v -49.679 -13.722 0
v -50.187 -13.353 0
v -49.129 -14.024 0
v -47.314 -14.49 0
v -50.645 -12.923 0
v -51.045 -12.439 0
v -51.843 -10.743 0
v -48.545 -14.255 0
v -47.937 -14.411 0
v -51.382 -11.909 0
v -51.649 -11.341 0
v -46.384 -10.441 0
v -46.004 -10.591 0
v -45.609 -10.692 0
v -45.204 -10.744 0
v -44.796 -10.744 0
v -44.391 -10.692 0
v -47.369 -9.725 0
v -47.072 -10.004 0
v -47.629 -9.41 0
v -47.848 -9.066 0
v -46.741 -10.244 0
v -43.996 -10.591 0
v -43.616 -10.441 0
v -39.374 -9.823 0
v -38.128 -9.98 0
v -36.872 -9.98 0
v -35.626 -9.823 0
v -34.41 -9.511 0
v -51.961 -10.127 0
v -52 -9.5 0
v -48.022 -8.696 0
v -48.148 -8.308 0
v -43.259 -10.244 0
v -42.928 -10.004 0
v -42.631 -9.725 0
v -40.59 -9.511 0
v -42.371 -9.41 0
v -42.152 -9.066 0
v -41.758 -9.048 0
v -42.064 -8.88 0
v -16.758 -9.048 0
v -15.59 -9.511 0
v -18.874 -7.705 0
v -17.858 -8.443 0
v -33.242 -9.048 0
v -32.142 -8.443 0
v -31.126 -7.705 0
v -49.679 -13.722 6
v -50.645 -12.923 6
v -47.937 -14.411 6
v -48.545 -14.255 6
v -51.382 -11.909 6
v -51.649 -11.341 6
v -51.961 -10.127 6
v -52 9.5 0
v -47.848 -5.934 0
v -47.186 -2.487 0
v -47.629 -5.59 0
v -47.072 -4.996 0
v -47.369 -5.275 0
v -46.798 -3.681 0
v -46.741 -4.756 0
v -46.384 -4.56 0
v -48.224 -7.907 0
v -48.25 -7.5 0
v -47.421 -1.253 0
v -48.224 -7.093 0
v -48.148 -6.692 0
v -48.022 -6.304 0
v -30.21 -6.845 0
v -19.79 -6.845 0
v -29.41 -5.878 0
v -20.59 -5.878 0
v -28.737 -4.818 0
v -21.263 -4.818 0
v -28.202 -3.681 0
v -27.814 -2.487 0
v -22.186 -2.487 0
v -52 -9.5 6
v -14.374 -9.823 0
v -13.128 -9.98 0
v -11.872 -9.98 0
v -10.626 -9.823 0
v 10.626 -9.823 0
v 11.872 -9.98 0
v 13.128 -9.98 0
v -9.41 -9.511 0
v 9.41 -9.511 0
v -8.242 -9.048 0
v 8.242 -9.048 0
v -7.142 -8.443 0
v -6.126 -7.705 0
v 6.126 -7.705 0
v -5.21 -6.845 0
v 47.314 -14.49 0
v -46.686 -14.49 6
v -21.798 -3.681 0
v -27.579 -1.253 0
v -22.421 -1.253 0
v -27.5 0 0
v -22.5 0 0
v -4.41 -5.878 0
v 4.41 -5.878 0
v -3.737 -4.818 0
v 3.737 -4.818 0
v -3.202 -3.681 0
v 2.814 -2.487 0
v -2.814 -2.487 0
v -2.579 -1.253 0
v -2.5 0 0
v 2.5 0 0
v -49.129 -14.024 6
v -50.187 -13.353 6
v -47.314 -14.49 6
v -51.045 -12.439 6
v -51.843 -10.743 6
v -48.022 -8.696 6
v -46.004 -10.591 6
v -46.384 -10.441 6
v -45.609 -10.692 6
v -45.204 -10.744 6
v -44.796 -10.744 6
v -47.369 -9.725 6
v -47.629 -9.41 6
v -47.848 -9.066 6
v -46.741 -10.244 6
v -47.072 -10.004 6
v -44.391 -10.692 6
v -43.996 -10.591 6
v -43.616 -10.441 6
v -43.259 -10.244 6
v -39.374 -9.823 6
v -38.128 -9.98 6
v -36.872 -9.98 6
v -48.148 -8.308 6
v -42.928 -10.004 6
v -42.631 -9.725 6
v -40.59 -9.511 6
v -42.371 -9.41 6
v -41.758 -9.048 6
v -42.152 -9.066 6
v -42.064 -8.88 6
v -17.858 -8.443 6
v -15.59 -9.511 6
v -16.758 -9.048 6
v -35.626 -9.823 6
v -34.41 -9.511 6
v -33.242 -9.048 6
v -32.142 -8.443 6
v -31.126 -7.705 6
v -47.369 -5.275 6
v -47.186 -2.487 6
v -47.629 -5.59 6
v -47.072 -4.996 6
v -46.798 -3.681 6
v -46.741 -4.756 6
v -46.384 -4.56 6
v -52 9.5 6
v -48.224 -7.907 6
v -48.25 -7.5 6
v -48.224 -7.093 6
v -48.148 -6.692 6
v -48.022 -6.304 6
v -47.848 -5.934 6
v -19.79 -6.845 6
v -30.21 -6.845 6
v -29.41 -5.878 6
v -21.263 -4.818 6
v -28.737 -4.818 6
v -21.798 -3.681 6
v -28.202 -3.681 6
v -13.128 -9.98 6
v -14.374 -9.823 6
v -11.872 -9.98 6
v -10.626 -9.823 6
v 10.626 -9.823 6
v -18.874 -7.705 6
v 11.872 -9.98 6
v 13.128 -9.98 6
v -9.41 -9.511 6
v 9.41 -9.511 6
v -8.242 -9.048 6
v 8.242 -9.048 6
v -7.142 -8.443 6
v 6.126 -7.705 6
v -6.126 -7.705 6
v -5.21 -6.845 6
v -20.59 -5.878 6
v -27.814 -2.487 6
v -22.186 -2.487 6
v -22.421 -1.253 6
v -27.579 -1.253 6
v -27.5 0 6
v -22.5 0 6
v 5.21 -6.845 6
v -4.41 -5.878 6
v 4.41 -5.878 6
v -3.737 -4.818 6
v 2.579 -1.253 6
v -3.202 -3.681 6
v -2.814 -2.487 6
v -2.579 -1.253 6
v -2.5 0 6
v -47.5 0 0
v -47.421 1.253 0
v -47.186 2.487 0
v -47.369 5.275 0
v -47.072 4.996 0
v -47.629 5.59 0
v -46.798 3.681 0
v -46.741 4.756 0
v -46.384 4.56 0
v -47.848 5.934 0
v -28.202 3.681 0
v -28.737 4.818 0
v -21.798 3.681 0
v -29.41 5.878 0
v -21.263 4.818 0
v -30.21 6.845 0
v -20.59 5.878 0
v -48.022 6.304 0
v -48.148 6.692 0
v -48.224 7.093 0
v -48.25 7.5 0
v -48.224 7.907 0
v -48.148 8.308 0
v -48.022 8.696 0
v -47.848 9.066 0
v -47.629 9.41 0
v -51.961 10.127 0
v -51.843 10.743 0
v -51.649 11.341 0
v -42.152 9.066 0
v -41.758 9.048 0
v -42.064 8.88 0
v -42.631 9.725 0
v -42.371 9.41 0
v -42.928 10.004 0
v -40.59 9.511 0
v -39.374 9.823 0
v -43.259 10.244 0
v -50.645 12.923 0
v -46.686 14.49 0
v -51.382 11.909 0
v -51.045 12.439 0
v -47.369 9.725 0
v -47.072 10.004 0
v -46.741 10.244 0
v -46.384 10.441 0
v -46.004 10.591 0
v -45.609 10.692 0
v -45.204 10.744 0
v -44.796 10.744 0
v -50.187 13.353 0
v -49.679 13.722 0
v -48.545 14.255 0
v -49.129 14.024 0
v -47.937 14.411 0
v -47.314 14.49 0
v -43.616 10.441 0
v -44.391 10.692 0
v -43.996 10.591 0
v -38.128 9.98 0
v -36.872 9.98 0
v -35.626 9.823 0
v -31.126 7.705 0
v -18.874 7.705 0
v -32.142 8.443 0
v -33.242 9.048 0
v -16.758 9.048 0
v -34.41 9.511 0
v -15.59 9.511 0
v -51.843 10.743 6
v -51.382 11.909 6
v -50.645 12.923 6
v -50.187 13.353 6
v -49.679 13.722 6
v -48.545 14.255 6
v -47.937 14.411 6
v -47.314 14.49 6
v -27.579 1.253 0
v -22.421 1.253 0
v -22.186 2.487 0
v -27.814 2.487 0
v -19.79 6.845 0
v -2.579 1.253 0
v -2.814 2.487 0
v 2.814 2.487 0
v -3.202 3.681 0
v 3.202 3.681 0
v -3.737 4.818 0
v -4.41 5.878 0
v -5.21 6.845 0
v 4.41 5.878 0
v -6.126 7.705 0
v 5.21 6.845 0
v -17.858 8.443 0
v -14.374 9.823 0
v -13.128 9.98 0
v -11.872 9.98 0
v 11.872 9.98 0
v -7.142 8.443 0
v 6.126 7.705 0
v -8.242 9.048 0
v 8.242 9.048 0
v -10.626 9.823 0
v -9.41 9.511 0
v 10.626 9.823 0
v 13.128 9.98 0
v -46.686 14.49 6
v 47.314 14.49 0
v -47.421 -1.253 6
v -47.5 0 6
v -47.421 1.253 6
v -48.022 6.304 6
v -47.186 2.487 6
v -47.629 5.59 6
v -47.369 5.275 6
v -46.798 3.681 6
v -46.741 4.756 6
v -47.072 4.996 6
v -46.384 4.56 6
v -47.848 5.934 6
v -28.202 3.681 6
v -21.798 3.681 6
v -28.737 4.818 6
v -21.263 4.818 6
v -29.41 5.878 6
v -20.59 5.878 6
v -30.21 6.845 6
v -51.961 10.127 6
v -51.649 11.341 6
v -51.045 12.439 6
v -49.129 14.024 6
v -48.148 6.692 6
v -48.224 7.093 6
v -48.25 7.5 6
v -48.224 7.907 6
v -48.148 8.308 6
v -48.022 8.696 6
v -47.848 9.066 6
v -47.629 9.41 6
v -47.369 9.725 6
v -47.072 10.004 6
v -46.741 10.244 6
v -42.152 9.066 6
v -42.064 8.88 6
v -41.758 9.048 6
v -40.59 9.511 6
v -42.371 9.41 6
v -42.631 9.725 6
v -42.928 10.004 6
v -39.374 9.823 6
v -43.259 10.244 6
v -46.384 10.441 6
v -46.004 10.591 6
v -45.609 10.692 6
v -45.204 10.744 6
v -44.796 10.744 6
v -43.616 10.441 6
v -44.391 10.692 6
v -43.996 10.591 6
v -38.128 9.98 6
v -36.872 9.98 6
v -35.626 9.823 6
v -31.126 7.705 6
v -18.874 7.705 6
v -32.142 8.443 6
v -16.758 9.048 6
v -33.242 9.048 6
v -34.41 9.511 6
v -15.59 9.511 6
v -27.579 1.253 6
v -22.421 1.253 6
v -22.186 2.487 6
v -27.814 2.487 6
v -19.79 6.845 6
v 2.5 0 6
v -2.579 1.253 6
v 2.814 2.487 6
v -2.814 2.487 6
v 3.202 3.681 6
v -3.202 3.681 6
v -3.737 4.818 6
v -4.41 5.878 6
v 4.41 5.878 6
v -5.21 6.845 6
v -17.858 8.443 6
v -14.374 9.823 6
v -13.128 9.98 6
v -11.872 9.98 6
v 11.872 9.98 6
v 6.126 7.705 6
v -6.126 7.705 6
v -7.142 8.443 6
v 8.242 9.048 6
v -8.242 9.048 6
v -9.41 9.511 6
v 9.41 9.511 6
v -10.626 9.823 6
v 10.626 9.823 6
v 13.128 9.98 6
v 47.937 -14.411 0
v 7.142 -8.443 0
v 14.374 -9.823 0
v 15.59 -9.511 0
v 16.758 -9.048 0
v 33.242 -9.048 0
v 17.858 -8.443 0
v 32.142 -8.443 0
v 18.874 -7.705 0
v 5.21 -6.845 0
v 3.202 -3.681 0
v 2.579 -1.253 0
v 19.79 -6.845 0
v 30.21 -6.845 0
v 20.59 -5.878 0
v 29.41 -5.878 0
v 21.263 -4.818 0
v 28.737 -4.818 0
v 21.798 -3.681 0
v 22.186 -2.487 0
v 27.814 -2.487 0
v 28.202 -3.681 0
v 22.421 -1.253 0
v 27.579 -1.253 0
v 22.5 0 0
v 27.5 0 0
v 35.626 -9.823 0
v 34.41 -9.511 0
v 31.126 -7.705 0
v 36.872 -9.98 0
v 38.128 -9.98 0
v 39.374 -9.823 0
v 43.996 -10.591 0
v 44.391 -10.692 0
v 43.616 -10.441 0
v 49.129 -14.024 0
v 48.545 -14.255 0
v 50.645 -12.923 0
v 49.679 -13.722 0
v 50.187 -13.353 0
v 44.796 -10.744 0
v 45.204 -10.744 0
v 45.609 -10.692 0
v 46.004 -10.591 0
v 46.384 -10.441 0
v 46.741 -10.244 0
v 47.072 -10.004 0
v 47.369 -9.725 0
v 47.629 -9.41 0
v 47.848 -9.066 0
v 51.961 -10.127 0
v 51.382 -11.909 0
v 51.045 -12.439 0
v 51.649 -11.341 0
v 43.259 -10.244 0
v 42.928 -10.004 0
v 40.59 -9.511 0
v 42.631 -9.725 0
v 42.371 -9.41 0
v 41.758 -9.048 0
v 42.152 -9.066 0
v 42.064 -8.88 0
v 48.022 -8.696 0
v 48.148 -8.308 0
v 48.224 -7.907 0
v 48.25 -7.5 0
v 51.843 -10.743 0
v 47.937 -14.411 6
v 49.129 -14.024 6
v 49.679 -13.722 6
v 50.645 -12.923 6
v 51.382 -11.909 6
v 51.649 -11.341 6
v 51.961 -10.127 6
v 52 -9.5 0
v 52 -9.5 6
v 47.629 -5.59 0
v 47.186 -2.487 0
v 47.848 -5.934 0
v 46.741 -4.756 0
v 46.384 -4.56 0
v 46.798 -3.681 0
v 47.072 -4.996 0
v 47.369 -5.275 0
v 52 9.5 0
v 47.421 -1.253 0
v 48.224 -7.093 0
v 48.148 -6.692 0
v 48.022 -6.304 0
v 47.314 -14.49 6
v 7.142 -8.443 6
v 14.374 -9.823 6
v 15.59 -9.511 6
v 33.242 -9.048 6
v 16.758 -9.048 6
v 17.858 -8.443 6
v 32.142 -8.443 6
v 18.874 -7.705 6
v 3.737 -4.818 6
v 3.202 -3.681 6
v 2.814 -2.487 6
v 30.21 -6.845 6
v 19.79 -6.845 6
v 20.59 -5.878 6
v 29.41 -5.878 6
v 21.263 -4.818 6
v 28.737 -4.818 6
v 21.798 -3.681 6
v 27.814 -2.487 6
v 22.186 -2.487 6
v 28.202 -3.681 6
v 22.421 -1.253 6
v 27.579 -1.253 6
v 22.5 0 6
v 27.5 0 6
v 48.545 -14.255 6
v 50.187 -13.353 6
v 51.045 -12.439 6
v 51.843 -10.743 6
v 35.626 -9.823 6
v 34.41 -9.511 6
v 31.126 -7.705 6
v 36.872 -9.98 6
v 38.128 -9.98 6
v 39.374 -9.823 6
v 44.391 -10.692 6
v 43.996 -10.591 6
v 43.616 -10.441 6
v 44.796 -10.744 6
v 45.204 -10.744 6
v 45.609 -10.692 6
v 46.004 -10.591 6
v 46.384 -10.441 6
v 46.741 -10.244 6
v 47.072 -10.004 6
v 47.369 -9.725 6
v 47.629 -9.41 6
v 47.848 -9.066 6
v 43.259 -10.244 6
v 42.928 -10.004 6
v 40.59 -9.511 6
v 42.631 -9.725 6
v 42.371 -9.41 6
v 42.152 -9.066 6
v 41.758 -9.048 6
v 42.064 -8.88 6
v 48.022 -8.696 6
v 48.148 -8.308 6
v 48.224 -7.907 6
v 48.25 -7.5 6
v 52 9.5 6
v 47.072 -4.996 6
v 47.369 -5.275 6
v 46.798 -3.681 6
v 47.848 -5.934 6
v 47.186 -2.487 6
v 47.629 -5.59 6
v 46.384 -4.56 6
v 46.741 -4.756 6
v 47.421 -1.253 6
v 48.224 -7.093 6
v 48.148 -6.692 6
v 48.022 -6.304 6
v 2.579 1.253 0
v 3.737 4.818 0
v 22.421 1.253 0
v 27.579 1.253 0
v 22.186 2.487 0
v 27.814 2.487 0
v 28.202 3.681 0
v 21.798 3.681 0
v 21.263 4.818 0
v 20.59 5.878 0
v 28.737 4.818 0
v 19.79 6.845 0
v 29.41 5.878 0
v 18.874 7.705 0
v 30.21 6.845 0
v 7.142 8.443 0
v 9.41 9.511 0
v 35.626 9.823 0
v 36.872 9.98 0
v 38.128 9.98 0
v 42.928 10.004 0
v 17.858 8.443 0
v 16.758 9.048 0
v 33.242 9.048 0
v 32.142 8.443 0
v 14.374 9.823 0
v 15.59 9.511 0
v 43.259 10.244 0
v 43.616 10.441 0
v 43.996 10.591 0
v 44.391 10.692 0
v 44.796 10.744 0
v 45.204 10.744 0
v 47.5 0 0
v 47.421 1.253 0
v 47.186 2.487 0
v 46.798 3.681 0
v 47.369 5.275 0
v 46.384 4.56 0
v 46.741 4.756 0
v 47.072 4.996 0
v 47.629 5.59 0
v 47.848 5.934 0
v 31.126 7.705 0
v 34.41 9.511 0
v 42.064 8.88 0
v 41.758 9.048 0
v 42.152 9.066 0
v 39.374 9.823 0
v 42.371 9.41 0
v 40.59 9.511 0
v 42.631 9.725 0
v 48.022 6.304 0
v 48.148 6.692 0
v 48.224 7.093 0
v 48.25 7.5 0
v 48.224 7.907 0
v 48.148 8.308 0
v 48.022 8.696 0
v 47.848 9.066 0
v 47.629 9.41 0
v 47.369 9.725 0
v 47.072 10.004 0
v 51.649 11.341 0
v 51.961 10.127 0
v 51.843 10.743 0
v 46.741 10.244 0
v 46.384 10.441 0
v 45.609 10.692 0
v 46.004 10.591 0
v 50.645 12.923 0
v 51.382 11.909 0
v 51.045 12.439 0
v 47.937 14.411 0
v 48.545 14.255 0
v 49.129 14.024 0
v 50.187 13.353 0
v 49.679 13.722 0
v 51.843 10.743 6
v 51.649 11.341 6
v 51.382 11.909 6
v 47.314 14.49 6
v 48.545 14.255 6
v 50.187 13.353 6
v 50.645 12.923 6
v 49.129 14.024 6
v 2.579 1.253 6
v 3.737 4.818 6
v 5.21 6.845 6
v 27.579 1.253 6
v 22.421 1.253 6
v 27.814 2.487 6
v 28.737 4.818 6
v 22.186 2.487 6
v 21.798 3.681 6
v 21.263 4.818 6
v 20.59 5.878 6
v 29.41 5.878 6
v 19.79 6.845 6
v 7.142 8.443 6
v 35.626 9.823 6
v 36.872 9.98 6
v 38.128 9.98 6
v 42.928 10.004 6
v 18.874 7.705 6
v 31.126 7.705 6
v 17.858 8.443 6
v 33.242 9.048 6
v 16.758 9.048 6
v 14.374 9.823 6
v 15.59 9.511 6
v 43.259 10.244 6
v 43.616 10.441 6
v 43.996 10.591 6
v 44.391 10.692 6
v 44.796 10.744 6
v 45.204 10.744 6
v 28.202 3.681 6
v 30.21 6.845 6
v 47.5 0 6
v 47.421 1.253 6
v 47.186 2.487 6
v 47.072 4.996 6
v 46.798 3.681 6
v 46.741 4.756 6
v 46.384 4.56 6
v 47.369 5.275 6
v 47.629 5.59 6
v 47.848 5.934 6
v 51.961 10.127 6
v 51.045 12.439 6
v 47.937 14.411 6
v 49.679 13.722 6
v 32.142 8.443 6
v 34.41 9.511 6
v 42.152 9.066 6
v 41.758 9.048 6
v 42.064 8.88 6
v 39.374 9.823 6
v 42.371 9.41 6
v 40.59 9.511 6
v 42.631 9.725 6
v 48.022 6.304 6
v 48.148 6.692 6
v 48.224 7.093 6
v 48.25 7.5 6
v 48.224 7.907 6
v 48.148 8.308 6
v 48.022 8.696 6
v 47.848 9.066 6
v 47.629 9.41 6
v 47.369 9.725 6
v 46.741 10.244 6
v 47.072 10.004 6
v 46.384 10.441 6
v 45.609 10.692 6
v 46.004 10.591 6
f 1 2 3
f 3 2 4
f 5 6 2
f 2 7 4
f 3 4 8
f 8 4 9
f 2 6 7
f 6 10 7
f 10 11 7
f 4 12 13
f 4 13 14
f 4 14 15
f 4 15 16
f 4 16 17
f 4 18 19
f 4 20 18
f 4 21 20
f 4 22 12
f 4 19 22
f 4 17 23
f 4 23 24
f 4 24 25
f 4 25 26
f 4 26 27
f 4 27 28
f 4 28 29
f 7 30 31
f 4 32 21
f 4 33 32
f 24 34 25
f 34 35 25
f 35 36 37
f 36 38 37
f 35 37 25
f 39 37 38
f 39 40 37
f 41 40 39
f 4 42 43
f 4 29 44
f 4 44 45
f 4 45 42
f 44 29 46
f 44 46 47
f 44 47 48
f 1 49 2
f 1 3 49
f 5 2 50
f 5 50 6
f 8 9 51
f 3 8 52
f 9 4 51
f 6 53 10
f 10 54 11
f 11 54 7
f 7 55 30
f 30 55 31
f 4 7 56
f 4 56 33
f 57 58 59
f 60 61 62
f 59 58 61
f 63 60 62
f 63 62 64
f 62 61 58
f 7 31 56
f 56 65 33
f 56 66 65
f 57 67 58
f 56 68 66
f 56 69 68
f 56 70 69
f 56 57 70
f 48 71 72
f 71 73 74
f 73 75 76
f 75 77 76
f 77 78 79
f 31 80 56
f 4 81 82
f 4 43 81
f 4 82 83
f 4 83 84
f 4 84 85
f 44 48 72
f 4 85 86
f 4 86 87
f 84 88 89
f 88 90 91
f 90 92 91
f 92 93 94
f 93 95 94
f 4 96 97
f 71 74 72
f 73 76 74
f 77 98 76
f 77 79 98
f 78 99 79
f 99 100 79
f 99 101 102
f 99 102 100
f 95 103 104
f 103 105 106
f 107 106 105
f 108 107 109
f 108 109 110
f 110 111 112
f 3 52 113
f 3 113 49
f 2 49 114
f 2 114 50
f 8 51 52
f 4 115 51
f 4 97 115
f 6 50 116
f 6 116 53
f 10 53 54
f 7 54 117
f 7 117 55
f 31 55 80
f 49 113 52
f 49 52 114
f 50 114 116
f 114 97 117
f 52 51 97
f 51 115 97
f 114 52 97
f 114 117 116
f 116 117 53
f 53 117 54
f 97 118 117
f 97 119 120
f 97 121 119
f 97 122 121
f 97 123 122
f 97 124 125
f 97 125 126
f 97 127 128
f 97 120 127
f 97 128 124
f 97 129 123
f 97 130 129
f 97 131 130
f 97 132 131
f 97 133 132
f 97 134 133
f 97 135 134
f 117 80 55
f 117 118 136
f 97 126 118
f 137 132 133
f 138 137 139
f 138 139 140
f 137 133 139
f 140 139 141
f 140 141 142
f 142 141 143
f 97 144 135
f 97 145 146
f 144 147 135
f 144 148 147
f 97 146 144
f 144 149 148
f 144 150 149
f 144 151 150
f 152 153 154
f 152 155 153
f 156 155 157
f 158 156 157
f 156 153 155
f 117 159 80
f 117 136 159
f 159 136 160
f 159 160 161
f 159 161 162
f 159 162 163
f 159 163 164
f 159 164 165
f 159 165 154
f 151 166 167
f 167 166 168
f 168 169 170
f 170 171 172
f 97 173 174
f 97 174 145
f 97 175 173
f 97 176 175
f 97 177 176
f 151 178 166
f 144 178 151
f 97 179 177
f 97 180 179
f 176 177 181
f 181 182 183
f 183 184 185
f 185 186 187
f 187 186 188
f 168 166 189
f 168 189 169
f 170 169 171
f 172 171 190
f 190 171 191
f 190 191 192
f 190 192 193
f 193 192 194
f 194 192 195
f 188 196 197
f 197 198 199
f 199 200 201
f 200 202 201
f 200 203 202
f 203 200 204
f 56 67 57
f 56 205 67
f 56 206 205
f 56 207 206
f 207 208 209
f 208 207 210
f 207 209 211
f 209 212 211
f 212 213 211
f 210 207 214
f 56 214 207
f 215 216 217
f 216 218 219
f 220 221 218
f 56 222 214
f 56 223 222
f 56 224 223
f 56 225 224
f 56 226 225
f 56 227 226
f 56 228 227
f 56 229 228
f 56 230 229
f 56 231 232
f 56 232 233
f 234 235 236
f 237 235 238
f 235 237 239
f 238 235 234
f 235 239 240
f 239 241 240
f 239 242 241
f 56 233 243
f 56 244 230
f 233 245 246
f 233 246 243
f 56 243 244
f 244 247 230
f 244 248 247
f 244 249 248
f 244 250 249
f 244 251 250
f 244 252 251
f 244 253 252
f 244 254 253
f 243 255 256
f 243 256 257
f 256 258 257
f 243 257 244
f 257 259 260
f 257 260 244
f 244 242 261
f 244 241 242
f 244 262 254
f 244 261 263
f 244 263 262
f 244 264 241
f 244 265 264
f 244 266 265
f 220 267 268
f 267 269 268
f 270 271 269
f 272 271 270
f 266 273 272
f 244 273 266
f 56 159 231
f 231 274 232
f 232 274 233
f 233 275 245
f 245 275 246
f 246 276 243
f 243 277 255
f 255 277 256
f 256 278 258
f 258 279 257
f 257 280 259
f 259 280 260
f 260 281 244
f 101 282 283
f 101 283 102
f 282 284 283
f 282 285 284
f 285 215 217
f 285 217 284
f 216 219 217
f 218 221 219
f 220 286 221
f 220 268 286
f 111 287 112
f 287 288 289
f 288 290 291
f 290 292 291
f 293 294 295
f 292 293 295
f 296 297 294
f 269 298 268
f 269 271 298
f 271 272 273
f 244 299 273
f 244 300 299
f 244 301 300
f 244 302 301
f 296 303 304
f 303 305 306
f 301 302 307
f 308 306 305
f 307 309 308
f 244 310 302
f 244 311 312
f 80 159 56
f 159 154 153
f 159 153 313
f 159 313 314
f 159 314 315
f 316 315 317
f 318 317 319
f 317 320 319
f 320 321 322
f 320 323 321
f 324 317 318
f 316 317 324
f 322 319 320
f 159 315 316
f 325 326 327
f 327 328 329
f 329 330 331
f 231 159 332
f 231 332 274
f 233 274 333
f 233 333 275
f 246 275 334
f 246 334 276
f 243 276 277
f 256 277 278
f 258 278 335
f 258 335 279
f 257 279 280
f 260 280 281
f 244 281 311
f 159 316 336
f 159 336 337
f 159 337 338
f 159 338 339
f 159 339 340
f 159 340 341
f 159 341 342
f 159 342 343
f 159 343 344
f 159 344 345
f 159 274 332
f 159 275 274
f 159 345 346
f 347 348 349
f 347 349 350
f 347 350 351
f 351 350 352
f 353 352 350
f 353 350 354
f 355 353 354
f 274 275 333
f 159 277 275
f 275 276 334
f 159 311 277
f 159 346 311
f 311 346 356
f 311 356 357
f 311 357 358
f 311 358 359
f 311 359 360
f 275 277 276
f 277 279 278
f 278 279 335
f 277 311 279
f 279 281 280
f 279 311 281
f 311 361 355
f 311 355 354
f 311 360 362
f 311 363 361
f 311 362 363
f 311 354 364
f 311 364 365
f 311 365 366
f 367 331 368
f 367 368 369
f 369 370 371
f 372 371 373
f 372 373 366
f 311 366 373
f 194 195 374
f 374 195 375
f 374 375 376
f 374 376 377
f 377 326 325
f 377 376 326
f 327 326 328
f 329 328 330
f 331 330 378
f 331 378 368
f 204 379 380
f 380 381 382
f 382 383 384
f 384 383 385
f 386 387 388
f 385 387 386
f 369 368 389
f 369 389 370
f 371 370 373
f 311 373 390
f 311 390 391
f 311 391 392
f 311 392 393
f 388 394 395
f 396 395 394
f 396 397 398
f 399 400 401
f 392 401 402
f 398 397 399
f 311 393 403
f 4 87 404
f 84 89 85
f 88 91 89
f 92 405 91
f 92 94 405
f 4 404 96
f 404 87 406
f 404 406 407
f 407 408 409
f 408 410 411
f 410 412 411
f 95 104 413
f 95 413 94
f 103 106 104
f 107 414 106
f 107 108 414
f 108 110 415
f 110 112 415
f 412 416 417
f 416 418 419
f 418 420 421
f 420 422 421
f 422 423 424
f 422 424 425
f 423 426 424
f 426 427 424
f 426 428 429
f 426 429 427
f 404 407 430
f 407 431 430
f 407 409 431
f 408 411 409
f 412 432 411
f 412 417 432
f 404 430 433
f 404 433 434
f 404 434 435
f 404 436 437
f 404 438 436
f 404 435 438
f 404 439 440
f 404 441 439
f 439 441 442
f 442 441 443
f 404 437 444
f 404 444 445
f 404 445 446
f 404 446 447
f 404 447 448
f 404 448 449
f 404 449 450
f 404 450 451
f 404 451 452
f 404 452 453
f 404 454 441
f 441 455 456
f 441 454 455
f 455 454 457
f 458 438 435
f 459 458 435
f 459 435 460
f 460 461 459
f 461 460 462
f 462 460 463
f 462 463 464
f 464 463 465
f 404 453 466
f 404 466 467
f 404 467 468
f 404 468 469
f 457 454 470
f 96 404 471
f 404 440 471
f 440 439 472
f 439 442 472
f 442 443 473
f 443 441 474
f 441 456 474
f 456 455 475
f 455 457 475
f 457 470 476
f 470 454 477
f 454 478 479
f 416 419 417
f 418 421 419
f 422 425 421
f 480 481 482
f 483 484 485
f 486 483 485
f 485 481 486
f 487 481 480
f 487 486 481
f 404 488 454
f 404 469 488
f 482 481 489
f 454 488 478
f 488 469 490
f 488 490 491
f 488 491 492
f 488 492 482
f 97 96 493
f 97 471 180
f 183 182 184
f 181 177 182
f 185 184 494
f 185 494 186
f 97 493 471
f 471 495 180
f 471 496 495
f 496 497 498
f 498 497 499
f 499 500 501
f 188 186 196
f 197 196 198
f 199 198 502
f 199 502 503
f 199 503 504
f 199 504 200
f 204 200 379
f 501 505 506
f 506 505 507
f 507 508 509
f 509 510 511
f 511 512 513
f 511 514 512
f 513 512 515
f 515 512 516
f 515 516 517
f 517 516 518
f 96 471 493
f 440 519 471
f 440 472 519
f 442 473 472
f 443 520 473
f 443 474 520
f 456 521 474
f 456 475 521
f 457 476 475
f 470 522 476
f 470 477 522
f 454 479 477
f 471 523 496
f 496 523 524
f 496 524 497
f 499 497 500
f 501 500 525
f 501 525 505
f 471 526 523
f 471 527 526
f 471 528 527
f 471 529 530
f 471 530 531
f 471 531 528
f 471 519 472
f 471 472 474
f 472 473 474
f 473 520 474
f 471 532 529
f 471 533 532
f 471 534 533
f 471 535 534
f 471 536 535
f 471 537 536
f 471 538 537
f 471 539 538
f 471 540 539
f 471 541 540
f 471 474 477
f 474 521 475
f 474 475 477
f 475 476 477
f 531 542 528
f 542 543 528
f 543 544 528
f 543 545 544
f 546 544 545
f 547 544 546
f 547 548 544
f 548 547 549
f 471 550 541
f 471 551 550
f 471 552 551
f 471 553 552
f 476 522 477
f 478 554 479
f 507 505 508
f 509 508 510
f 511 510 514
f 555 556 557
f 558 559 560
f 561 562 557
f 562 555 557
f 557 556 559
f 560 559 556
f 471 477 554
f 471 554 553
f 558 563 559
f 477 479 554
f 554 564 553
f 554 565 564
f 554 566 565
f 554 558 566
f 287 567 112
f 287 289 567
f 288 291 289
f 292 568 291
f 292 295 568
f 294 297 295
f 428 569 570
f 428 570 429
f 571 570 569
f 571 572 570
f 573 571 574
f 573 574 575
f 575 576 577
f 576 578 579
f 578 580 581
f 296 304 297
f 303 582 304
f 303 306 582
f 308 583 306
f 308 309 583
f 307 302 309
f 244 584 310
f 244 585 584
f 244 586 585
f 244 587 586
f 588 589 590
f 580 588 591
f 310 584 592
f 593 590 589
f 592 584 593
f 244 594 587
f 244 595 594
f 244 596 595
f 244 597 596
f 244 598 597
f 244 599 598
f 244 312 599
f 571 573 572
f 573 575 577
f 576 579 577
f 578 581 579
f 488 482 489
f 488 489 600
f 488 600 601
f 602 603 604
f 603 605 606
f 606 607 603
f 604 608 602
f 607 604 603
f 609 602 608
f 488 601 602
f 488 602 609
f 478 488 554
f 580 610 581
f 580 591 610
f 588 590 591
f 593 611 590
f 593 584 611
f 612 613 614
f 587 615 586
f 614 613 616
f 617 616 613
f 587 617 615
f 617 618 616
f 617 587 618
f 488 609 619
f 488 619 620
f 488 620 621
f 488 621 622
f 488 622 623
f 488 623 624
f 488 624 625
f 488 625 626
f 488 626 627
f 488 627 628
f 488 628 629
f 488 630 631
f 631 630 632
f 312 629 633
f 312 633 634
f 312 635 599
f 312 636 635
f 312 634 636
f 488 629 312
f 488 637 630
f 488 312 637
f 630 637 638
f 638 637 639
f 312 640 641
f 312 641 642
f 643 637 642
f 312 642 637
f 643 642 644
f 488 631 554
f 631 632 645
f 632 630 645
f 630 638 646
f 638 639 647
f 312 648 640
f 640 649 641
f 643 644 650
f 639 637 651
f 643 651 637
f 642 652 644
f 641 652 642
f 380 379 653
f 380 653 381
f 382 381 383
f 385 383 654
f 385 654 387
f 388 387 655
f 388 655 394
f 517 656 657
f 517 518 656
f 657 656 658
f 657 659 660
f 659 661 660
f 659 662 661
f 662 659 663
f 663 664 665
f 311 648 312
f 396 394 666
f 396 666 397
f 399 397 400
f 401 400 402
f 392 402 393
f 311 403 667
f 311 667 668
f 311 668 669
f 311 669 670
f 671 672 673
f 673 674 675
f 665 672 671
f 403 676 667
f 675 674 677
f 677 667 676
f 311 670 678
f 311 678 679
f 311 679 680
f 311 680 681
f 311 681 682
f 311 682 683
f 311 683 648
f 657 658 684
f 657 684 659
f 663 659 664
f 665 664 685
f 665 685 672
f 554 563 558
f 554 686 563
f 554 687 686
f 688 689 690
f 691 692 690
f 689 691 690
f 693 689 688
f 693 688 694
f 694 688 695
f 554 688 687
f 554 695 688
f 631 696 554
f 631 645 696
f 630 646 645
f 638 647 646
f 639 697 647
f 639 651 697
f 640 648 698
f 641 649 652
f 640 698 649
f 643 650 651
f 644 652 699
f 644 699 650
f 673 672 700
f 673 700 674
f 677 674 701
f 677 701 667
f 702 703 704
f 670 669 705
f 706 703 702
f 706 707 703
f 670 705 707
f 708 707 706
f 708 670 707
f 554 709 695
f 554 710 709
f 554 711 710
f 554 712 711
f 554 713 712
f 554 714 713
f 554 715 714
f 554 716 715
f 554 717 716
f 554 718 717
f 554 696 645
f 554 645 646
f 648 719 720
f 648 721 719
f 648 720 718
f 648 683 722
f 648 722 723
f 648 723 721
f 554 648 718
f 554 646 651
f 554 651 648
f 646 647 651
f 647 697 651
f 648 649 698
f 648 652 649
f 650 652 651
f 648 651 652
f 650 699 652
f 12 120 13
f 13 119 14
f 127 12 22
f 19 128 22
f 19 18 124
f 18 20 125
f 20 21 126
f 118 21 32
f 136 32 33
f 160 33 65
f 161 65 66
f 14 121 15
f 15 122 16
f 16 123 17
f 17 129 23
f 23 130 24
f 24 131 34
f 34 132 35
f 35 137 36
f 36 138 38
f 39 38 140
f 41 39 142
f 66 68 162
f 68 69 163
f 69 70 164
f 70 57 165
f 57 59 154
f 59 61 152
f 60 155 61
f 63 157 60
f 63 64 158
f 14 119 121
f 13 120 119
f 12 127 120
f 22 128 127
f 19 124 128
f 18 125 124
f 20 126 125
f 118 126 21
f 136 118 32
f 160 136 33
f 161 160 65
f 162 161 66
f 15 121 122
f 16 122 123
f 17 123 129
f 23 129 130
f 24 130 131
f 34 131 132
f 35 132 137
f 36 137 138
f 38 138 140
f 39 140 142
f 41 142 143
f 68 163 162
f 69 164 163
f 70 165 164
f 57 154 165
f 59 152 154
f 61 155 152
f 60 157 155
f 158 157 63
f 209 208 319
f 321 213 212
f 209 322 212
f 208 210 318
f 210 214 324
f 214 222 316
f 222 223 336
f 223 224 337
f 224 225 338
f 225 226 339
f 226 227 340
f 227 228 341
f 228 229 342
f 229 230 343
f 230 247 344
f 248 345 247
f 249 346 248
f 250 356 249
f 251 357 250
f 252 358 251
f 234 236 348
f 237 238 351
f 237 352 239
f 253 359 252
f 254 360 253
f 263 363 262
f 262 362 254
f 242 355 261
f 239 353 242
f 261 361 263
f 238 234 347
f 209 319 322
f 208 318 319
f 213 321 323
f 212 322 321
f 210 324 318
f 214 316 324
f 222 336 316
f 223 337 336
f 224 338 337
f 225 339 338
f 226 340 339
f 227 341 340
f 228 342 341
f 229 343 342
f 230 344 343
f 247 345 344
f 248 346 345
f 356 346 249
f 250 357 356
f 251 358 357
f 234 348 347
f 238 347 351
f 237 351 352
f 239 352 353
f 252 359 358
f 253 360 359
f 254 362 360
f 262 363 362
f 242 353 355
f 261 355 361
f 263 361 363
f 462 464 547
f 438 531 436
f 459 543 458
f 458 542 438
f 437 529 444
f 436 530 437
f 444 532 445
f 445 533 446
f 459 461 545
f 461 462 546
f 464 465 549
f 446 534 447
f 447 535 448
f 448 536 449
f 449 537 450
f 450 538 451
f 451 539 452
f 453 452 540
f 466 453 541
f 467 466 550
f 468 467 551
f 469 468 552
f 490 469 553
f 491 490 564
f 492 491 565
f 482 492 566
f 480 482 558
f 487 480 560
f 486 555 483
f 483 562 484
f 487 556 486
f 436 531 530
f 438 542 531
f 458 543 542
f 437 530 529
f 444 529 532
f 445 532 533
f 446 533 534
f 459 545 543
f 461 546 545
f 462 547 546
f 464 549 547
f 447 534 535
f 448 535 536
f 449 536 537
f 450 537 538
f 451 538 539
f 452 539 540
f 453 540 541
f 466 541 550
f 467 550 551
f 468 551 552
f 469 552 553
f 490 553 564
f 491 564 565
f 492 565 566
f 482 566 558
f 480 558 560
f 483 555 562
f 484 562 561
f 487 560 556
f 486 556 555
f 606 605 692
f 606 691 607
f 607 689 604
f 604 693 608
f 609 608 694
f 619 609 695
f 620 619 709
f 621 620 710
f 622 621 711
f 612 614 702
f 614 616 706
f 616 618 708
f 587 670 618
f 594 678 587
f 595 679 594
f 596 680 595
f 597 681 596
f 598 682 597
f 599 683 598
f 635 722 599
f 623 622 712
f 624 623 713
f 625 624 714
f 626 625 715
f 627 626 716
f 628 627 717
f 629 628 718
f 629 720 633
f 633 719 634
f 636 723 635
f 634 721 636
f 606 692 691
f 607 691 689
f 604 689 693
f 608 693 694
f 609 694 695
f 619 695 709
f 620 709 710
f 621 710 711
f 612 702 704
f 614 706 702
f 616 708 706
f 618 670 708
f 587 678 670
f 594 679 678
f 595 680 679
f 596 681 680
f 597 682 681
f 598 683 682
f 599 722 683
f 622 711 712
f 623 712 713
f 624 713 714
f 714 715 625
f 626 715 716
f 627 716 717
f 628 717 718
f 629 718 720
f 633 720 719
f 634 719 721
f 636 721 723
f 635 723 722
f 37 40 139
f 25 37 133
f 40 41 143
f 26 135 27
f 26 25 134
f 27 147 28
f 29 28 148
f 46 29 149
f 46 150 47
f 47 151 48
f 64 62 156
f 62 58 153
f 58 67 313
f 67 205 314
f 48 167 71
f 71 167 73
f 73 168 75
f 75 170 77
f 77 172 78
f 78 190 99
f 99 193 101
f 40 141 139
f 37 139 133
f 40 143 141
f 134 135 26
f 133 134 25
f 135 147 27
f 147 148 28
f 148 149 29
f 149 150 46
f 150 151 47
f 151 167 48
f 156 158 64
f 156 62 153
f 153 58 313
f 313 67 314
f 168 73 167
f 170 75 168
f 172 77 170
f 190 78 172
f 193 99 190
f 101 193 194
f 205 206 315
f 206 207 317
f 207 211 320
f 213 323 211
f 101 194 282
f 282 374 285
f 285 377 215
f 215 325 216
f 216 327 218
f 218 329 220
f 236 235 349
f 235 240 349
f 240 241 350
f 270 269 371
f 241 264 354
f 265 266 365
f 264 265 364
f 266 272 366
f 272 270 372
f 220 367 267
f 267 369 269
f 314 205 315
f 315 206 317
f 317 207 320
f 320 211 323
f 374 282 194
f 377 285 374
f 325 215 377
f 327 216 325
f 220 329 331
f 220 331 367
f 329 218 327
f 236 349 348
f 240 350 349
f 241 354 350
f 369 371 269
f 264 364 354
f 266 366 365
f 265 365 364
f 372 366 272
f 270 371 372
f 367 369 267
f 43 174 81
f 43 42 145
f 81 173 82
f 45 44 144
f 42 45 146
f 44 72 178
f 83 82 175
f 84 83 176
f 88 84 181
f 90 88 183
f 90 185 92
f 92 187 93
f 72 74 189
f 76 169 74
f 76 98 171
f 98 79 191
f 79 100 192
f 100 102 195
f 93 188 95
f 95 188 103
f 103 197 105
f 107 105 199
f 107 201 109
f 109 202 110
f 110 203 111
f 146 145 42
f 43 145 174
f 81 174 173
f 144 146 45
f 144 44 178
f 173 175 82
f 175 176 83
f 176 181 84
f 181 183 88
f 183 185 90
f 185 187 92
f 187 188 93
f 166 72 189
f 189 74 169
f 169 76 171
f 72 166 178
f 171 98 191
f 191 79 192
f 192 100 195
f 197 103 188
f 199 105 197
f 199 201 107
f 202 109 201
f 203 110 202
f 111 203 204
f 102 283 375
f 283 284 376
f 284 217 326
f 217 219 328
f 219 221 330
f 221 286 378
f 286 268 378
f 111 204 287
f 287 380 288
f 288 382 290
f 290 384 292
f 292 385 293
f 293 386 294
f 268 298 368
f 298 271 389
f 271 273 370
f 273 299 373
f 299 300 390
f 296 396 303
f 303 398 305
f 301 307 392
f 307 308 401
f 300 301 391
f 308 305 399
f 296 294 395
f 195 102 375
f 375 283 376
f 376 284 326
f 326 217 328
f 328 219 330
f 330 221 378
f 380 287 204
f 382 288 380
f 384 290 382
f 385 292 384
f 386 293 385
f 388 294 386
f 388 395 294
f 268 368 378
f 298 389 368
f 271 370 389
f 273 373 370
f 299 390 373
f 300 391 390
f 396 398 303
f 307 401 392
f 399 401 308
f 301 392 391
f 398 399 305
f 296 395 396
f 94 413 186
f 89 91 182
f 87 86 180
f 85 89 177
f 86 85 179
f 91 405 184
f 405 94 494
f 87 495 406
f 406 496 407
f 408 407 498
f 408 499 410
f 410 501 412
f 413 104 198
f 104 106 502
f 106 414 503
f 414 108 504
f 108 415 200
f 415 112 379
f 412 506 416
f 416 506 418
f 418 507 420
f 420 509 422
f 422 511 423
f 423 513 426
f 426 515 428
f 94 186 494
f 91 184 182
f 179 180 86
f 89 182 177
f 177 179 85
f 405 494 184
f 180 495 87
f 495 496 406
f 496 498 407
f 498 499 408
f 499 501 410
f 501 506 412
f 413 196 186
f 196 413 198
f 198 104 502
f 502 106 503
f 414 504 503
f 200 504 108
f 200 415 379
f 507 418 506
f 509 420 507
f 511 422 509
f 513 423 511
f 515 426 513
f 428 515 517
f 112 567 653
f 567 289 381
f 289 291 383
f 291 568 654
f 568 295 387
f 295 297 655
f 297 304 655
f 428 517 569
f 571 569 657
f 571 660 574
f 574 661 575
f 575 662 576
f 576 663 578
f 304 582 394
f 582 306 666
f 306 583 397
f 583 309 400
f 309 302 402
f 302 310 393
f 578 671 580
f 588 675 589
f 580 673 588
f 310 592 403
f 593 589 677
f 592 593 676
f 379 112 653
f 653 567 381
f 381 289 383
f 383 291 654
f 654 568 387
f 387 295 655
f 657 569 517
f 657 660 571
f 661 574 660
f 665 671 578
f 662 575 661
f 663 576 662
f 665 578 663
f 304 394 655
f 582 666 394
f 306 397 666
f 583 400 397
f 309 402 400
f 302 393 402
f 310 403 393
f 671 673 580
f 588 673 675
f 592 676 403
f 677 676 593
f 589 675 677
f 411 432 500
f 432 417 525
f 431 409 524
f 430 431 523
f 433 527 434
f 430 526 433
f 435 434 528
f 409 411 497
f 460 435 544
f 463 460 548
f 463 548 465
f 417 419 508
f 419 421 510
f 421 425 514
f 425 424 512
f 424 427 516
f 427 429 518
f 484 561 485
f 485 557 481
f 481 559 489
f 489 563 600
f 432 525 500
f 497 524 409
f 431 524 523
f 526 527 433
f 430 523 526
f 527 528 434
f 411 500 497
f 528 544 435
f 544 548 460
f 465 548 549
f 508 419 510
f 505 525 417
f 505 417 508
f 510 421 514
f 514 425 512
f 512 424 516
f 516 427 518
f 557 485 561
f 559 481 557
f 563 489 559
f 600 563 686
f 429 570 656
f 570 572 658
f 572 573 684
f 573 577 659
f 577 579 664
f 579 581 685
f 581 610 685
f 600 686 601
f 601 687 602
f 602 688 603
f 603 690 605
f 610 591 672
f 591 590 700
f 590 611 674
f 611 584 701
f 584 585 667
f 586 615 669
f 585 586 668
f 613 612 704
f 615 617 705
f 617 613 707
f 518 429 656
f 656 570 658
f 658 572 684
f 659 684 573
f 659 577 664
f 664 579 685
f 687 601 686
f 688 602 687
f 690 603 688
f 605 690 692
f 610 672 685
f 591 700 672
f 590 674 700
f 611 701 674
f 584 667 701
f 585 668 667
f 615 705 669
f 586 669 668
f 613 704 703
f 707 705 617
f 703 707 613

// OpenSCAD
$fn = 50;

difference() {
	union() {
		hull() {
			translate(v = [-47.0, 9.5, 0]) {
				cylinder(h = 6, r = 5);
			}
			translate(v = [47.0, 9.5, 0]) {
				cylinder(h = 6, r = 5);
			}
			translate(v = [-47.0, -9.5, 0]) {
				cylinder(h = 6, r = 5);
			}
			translate(v = [47.0, -9.5, 0]) {
				cylinder(h = 6, r = 5);
			}
		}
	}
	union() {
		translate(v = [-45.0, -7.5, -100.0]) {
			cylinder(h = 200, r = 3.25);
		}
		translate(v = [-45.0, 7.5, -100.0]) {
			cylinder(h = 200, r = 3.25);
		}
		translate(v = [45.0, -7.5, -100.0]) {
			cylinder(h = 200, r = 3.25);
		}
		translate(v = [45.0, 7.5, -100.0]) {
			cylinder(h = 200, r = 3.25);
		}
		translate(v = [-45.0, -7.5, -100.0]) {
			cylinder(h = 200, r = 1.8);
		}
		translate(v = [-45.0, 7.5, -100.0]) {
			cylinder(h = 200, r = 1.8);
		}
		translate(v = [45.0, -7.5, -100.0]) {
			cylinder(h = 200, r = 1.8);
		}
		translate(v = [45.0, 7.5, -100.0]) {
			cylinder(h = 200, r = 1.8);
		}
		translate(v = [-37.5, 0, 0.0]) {
			cylinder(h = 6, r = 10.0);
		}
		translate(v = [-12.5, 0, 0.0]) {
			cylinder(h = 6, r = 10.0);
		}
		translate(v = [12.5, 0, 0.0]) {
			cylinder(h = 6, r = 10.0);
		}
		translate(v = [37.5, 0, 0.0]) {
			cylinder(h = 6, r = 10.0);
		}
	}
}
